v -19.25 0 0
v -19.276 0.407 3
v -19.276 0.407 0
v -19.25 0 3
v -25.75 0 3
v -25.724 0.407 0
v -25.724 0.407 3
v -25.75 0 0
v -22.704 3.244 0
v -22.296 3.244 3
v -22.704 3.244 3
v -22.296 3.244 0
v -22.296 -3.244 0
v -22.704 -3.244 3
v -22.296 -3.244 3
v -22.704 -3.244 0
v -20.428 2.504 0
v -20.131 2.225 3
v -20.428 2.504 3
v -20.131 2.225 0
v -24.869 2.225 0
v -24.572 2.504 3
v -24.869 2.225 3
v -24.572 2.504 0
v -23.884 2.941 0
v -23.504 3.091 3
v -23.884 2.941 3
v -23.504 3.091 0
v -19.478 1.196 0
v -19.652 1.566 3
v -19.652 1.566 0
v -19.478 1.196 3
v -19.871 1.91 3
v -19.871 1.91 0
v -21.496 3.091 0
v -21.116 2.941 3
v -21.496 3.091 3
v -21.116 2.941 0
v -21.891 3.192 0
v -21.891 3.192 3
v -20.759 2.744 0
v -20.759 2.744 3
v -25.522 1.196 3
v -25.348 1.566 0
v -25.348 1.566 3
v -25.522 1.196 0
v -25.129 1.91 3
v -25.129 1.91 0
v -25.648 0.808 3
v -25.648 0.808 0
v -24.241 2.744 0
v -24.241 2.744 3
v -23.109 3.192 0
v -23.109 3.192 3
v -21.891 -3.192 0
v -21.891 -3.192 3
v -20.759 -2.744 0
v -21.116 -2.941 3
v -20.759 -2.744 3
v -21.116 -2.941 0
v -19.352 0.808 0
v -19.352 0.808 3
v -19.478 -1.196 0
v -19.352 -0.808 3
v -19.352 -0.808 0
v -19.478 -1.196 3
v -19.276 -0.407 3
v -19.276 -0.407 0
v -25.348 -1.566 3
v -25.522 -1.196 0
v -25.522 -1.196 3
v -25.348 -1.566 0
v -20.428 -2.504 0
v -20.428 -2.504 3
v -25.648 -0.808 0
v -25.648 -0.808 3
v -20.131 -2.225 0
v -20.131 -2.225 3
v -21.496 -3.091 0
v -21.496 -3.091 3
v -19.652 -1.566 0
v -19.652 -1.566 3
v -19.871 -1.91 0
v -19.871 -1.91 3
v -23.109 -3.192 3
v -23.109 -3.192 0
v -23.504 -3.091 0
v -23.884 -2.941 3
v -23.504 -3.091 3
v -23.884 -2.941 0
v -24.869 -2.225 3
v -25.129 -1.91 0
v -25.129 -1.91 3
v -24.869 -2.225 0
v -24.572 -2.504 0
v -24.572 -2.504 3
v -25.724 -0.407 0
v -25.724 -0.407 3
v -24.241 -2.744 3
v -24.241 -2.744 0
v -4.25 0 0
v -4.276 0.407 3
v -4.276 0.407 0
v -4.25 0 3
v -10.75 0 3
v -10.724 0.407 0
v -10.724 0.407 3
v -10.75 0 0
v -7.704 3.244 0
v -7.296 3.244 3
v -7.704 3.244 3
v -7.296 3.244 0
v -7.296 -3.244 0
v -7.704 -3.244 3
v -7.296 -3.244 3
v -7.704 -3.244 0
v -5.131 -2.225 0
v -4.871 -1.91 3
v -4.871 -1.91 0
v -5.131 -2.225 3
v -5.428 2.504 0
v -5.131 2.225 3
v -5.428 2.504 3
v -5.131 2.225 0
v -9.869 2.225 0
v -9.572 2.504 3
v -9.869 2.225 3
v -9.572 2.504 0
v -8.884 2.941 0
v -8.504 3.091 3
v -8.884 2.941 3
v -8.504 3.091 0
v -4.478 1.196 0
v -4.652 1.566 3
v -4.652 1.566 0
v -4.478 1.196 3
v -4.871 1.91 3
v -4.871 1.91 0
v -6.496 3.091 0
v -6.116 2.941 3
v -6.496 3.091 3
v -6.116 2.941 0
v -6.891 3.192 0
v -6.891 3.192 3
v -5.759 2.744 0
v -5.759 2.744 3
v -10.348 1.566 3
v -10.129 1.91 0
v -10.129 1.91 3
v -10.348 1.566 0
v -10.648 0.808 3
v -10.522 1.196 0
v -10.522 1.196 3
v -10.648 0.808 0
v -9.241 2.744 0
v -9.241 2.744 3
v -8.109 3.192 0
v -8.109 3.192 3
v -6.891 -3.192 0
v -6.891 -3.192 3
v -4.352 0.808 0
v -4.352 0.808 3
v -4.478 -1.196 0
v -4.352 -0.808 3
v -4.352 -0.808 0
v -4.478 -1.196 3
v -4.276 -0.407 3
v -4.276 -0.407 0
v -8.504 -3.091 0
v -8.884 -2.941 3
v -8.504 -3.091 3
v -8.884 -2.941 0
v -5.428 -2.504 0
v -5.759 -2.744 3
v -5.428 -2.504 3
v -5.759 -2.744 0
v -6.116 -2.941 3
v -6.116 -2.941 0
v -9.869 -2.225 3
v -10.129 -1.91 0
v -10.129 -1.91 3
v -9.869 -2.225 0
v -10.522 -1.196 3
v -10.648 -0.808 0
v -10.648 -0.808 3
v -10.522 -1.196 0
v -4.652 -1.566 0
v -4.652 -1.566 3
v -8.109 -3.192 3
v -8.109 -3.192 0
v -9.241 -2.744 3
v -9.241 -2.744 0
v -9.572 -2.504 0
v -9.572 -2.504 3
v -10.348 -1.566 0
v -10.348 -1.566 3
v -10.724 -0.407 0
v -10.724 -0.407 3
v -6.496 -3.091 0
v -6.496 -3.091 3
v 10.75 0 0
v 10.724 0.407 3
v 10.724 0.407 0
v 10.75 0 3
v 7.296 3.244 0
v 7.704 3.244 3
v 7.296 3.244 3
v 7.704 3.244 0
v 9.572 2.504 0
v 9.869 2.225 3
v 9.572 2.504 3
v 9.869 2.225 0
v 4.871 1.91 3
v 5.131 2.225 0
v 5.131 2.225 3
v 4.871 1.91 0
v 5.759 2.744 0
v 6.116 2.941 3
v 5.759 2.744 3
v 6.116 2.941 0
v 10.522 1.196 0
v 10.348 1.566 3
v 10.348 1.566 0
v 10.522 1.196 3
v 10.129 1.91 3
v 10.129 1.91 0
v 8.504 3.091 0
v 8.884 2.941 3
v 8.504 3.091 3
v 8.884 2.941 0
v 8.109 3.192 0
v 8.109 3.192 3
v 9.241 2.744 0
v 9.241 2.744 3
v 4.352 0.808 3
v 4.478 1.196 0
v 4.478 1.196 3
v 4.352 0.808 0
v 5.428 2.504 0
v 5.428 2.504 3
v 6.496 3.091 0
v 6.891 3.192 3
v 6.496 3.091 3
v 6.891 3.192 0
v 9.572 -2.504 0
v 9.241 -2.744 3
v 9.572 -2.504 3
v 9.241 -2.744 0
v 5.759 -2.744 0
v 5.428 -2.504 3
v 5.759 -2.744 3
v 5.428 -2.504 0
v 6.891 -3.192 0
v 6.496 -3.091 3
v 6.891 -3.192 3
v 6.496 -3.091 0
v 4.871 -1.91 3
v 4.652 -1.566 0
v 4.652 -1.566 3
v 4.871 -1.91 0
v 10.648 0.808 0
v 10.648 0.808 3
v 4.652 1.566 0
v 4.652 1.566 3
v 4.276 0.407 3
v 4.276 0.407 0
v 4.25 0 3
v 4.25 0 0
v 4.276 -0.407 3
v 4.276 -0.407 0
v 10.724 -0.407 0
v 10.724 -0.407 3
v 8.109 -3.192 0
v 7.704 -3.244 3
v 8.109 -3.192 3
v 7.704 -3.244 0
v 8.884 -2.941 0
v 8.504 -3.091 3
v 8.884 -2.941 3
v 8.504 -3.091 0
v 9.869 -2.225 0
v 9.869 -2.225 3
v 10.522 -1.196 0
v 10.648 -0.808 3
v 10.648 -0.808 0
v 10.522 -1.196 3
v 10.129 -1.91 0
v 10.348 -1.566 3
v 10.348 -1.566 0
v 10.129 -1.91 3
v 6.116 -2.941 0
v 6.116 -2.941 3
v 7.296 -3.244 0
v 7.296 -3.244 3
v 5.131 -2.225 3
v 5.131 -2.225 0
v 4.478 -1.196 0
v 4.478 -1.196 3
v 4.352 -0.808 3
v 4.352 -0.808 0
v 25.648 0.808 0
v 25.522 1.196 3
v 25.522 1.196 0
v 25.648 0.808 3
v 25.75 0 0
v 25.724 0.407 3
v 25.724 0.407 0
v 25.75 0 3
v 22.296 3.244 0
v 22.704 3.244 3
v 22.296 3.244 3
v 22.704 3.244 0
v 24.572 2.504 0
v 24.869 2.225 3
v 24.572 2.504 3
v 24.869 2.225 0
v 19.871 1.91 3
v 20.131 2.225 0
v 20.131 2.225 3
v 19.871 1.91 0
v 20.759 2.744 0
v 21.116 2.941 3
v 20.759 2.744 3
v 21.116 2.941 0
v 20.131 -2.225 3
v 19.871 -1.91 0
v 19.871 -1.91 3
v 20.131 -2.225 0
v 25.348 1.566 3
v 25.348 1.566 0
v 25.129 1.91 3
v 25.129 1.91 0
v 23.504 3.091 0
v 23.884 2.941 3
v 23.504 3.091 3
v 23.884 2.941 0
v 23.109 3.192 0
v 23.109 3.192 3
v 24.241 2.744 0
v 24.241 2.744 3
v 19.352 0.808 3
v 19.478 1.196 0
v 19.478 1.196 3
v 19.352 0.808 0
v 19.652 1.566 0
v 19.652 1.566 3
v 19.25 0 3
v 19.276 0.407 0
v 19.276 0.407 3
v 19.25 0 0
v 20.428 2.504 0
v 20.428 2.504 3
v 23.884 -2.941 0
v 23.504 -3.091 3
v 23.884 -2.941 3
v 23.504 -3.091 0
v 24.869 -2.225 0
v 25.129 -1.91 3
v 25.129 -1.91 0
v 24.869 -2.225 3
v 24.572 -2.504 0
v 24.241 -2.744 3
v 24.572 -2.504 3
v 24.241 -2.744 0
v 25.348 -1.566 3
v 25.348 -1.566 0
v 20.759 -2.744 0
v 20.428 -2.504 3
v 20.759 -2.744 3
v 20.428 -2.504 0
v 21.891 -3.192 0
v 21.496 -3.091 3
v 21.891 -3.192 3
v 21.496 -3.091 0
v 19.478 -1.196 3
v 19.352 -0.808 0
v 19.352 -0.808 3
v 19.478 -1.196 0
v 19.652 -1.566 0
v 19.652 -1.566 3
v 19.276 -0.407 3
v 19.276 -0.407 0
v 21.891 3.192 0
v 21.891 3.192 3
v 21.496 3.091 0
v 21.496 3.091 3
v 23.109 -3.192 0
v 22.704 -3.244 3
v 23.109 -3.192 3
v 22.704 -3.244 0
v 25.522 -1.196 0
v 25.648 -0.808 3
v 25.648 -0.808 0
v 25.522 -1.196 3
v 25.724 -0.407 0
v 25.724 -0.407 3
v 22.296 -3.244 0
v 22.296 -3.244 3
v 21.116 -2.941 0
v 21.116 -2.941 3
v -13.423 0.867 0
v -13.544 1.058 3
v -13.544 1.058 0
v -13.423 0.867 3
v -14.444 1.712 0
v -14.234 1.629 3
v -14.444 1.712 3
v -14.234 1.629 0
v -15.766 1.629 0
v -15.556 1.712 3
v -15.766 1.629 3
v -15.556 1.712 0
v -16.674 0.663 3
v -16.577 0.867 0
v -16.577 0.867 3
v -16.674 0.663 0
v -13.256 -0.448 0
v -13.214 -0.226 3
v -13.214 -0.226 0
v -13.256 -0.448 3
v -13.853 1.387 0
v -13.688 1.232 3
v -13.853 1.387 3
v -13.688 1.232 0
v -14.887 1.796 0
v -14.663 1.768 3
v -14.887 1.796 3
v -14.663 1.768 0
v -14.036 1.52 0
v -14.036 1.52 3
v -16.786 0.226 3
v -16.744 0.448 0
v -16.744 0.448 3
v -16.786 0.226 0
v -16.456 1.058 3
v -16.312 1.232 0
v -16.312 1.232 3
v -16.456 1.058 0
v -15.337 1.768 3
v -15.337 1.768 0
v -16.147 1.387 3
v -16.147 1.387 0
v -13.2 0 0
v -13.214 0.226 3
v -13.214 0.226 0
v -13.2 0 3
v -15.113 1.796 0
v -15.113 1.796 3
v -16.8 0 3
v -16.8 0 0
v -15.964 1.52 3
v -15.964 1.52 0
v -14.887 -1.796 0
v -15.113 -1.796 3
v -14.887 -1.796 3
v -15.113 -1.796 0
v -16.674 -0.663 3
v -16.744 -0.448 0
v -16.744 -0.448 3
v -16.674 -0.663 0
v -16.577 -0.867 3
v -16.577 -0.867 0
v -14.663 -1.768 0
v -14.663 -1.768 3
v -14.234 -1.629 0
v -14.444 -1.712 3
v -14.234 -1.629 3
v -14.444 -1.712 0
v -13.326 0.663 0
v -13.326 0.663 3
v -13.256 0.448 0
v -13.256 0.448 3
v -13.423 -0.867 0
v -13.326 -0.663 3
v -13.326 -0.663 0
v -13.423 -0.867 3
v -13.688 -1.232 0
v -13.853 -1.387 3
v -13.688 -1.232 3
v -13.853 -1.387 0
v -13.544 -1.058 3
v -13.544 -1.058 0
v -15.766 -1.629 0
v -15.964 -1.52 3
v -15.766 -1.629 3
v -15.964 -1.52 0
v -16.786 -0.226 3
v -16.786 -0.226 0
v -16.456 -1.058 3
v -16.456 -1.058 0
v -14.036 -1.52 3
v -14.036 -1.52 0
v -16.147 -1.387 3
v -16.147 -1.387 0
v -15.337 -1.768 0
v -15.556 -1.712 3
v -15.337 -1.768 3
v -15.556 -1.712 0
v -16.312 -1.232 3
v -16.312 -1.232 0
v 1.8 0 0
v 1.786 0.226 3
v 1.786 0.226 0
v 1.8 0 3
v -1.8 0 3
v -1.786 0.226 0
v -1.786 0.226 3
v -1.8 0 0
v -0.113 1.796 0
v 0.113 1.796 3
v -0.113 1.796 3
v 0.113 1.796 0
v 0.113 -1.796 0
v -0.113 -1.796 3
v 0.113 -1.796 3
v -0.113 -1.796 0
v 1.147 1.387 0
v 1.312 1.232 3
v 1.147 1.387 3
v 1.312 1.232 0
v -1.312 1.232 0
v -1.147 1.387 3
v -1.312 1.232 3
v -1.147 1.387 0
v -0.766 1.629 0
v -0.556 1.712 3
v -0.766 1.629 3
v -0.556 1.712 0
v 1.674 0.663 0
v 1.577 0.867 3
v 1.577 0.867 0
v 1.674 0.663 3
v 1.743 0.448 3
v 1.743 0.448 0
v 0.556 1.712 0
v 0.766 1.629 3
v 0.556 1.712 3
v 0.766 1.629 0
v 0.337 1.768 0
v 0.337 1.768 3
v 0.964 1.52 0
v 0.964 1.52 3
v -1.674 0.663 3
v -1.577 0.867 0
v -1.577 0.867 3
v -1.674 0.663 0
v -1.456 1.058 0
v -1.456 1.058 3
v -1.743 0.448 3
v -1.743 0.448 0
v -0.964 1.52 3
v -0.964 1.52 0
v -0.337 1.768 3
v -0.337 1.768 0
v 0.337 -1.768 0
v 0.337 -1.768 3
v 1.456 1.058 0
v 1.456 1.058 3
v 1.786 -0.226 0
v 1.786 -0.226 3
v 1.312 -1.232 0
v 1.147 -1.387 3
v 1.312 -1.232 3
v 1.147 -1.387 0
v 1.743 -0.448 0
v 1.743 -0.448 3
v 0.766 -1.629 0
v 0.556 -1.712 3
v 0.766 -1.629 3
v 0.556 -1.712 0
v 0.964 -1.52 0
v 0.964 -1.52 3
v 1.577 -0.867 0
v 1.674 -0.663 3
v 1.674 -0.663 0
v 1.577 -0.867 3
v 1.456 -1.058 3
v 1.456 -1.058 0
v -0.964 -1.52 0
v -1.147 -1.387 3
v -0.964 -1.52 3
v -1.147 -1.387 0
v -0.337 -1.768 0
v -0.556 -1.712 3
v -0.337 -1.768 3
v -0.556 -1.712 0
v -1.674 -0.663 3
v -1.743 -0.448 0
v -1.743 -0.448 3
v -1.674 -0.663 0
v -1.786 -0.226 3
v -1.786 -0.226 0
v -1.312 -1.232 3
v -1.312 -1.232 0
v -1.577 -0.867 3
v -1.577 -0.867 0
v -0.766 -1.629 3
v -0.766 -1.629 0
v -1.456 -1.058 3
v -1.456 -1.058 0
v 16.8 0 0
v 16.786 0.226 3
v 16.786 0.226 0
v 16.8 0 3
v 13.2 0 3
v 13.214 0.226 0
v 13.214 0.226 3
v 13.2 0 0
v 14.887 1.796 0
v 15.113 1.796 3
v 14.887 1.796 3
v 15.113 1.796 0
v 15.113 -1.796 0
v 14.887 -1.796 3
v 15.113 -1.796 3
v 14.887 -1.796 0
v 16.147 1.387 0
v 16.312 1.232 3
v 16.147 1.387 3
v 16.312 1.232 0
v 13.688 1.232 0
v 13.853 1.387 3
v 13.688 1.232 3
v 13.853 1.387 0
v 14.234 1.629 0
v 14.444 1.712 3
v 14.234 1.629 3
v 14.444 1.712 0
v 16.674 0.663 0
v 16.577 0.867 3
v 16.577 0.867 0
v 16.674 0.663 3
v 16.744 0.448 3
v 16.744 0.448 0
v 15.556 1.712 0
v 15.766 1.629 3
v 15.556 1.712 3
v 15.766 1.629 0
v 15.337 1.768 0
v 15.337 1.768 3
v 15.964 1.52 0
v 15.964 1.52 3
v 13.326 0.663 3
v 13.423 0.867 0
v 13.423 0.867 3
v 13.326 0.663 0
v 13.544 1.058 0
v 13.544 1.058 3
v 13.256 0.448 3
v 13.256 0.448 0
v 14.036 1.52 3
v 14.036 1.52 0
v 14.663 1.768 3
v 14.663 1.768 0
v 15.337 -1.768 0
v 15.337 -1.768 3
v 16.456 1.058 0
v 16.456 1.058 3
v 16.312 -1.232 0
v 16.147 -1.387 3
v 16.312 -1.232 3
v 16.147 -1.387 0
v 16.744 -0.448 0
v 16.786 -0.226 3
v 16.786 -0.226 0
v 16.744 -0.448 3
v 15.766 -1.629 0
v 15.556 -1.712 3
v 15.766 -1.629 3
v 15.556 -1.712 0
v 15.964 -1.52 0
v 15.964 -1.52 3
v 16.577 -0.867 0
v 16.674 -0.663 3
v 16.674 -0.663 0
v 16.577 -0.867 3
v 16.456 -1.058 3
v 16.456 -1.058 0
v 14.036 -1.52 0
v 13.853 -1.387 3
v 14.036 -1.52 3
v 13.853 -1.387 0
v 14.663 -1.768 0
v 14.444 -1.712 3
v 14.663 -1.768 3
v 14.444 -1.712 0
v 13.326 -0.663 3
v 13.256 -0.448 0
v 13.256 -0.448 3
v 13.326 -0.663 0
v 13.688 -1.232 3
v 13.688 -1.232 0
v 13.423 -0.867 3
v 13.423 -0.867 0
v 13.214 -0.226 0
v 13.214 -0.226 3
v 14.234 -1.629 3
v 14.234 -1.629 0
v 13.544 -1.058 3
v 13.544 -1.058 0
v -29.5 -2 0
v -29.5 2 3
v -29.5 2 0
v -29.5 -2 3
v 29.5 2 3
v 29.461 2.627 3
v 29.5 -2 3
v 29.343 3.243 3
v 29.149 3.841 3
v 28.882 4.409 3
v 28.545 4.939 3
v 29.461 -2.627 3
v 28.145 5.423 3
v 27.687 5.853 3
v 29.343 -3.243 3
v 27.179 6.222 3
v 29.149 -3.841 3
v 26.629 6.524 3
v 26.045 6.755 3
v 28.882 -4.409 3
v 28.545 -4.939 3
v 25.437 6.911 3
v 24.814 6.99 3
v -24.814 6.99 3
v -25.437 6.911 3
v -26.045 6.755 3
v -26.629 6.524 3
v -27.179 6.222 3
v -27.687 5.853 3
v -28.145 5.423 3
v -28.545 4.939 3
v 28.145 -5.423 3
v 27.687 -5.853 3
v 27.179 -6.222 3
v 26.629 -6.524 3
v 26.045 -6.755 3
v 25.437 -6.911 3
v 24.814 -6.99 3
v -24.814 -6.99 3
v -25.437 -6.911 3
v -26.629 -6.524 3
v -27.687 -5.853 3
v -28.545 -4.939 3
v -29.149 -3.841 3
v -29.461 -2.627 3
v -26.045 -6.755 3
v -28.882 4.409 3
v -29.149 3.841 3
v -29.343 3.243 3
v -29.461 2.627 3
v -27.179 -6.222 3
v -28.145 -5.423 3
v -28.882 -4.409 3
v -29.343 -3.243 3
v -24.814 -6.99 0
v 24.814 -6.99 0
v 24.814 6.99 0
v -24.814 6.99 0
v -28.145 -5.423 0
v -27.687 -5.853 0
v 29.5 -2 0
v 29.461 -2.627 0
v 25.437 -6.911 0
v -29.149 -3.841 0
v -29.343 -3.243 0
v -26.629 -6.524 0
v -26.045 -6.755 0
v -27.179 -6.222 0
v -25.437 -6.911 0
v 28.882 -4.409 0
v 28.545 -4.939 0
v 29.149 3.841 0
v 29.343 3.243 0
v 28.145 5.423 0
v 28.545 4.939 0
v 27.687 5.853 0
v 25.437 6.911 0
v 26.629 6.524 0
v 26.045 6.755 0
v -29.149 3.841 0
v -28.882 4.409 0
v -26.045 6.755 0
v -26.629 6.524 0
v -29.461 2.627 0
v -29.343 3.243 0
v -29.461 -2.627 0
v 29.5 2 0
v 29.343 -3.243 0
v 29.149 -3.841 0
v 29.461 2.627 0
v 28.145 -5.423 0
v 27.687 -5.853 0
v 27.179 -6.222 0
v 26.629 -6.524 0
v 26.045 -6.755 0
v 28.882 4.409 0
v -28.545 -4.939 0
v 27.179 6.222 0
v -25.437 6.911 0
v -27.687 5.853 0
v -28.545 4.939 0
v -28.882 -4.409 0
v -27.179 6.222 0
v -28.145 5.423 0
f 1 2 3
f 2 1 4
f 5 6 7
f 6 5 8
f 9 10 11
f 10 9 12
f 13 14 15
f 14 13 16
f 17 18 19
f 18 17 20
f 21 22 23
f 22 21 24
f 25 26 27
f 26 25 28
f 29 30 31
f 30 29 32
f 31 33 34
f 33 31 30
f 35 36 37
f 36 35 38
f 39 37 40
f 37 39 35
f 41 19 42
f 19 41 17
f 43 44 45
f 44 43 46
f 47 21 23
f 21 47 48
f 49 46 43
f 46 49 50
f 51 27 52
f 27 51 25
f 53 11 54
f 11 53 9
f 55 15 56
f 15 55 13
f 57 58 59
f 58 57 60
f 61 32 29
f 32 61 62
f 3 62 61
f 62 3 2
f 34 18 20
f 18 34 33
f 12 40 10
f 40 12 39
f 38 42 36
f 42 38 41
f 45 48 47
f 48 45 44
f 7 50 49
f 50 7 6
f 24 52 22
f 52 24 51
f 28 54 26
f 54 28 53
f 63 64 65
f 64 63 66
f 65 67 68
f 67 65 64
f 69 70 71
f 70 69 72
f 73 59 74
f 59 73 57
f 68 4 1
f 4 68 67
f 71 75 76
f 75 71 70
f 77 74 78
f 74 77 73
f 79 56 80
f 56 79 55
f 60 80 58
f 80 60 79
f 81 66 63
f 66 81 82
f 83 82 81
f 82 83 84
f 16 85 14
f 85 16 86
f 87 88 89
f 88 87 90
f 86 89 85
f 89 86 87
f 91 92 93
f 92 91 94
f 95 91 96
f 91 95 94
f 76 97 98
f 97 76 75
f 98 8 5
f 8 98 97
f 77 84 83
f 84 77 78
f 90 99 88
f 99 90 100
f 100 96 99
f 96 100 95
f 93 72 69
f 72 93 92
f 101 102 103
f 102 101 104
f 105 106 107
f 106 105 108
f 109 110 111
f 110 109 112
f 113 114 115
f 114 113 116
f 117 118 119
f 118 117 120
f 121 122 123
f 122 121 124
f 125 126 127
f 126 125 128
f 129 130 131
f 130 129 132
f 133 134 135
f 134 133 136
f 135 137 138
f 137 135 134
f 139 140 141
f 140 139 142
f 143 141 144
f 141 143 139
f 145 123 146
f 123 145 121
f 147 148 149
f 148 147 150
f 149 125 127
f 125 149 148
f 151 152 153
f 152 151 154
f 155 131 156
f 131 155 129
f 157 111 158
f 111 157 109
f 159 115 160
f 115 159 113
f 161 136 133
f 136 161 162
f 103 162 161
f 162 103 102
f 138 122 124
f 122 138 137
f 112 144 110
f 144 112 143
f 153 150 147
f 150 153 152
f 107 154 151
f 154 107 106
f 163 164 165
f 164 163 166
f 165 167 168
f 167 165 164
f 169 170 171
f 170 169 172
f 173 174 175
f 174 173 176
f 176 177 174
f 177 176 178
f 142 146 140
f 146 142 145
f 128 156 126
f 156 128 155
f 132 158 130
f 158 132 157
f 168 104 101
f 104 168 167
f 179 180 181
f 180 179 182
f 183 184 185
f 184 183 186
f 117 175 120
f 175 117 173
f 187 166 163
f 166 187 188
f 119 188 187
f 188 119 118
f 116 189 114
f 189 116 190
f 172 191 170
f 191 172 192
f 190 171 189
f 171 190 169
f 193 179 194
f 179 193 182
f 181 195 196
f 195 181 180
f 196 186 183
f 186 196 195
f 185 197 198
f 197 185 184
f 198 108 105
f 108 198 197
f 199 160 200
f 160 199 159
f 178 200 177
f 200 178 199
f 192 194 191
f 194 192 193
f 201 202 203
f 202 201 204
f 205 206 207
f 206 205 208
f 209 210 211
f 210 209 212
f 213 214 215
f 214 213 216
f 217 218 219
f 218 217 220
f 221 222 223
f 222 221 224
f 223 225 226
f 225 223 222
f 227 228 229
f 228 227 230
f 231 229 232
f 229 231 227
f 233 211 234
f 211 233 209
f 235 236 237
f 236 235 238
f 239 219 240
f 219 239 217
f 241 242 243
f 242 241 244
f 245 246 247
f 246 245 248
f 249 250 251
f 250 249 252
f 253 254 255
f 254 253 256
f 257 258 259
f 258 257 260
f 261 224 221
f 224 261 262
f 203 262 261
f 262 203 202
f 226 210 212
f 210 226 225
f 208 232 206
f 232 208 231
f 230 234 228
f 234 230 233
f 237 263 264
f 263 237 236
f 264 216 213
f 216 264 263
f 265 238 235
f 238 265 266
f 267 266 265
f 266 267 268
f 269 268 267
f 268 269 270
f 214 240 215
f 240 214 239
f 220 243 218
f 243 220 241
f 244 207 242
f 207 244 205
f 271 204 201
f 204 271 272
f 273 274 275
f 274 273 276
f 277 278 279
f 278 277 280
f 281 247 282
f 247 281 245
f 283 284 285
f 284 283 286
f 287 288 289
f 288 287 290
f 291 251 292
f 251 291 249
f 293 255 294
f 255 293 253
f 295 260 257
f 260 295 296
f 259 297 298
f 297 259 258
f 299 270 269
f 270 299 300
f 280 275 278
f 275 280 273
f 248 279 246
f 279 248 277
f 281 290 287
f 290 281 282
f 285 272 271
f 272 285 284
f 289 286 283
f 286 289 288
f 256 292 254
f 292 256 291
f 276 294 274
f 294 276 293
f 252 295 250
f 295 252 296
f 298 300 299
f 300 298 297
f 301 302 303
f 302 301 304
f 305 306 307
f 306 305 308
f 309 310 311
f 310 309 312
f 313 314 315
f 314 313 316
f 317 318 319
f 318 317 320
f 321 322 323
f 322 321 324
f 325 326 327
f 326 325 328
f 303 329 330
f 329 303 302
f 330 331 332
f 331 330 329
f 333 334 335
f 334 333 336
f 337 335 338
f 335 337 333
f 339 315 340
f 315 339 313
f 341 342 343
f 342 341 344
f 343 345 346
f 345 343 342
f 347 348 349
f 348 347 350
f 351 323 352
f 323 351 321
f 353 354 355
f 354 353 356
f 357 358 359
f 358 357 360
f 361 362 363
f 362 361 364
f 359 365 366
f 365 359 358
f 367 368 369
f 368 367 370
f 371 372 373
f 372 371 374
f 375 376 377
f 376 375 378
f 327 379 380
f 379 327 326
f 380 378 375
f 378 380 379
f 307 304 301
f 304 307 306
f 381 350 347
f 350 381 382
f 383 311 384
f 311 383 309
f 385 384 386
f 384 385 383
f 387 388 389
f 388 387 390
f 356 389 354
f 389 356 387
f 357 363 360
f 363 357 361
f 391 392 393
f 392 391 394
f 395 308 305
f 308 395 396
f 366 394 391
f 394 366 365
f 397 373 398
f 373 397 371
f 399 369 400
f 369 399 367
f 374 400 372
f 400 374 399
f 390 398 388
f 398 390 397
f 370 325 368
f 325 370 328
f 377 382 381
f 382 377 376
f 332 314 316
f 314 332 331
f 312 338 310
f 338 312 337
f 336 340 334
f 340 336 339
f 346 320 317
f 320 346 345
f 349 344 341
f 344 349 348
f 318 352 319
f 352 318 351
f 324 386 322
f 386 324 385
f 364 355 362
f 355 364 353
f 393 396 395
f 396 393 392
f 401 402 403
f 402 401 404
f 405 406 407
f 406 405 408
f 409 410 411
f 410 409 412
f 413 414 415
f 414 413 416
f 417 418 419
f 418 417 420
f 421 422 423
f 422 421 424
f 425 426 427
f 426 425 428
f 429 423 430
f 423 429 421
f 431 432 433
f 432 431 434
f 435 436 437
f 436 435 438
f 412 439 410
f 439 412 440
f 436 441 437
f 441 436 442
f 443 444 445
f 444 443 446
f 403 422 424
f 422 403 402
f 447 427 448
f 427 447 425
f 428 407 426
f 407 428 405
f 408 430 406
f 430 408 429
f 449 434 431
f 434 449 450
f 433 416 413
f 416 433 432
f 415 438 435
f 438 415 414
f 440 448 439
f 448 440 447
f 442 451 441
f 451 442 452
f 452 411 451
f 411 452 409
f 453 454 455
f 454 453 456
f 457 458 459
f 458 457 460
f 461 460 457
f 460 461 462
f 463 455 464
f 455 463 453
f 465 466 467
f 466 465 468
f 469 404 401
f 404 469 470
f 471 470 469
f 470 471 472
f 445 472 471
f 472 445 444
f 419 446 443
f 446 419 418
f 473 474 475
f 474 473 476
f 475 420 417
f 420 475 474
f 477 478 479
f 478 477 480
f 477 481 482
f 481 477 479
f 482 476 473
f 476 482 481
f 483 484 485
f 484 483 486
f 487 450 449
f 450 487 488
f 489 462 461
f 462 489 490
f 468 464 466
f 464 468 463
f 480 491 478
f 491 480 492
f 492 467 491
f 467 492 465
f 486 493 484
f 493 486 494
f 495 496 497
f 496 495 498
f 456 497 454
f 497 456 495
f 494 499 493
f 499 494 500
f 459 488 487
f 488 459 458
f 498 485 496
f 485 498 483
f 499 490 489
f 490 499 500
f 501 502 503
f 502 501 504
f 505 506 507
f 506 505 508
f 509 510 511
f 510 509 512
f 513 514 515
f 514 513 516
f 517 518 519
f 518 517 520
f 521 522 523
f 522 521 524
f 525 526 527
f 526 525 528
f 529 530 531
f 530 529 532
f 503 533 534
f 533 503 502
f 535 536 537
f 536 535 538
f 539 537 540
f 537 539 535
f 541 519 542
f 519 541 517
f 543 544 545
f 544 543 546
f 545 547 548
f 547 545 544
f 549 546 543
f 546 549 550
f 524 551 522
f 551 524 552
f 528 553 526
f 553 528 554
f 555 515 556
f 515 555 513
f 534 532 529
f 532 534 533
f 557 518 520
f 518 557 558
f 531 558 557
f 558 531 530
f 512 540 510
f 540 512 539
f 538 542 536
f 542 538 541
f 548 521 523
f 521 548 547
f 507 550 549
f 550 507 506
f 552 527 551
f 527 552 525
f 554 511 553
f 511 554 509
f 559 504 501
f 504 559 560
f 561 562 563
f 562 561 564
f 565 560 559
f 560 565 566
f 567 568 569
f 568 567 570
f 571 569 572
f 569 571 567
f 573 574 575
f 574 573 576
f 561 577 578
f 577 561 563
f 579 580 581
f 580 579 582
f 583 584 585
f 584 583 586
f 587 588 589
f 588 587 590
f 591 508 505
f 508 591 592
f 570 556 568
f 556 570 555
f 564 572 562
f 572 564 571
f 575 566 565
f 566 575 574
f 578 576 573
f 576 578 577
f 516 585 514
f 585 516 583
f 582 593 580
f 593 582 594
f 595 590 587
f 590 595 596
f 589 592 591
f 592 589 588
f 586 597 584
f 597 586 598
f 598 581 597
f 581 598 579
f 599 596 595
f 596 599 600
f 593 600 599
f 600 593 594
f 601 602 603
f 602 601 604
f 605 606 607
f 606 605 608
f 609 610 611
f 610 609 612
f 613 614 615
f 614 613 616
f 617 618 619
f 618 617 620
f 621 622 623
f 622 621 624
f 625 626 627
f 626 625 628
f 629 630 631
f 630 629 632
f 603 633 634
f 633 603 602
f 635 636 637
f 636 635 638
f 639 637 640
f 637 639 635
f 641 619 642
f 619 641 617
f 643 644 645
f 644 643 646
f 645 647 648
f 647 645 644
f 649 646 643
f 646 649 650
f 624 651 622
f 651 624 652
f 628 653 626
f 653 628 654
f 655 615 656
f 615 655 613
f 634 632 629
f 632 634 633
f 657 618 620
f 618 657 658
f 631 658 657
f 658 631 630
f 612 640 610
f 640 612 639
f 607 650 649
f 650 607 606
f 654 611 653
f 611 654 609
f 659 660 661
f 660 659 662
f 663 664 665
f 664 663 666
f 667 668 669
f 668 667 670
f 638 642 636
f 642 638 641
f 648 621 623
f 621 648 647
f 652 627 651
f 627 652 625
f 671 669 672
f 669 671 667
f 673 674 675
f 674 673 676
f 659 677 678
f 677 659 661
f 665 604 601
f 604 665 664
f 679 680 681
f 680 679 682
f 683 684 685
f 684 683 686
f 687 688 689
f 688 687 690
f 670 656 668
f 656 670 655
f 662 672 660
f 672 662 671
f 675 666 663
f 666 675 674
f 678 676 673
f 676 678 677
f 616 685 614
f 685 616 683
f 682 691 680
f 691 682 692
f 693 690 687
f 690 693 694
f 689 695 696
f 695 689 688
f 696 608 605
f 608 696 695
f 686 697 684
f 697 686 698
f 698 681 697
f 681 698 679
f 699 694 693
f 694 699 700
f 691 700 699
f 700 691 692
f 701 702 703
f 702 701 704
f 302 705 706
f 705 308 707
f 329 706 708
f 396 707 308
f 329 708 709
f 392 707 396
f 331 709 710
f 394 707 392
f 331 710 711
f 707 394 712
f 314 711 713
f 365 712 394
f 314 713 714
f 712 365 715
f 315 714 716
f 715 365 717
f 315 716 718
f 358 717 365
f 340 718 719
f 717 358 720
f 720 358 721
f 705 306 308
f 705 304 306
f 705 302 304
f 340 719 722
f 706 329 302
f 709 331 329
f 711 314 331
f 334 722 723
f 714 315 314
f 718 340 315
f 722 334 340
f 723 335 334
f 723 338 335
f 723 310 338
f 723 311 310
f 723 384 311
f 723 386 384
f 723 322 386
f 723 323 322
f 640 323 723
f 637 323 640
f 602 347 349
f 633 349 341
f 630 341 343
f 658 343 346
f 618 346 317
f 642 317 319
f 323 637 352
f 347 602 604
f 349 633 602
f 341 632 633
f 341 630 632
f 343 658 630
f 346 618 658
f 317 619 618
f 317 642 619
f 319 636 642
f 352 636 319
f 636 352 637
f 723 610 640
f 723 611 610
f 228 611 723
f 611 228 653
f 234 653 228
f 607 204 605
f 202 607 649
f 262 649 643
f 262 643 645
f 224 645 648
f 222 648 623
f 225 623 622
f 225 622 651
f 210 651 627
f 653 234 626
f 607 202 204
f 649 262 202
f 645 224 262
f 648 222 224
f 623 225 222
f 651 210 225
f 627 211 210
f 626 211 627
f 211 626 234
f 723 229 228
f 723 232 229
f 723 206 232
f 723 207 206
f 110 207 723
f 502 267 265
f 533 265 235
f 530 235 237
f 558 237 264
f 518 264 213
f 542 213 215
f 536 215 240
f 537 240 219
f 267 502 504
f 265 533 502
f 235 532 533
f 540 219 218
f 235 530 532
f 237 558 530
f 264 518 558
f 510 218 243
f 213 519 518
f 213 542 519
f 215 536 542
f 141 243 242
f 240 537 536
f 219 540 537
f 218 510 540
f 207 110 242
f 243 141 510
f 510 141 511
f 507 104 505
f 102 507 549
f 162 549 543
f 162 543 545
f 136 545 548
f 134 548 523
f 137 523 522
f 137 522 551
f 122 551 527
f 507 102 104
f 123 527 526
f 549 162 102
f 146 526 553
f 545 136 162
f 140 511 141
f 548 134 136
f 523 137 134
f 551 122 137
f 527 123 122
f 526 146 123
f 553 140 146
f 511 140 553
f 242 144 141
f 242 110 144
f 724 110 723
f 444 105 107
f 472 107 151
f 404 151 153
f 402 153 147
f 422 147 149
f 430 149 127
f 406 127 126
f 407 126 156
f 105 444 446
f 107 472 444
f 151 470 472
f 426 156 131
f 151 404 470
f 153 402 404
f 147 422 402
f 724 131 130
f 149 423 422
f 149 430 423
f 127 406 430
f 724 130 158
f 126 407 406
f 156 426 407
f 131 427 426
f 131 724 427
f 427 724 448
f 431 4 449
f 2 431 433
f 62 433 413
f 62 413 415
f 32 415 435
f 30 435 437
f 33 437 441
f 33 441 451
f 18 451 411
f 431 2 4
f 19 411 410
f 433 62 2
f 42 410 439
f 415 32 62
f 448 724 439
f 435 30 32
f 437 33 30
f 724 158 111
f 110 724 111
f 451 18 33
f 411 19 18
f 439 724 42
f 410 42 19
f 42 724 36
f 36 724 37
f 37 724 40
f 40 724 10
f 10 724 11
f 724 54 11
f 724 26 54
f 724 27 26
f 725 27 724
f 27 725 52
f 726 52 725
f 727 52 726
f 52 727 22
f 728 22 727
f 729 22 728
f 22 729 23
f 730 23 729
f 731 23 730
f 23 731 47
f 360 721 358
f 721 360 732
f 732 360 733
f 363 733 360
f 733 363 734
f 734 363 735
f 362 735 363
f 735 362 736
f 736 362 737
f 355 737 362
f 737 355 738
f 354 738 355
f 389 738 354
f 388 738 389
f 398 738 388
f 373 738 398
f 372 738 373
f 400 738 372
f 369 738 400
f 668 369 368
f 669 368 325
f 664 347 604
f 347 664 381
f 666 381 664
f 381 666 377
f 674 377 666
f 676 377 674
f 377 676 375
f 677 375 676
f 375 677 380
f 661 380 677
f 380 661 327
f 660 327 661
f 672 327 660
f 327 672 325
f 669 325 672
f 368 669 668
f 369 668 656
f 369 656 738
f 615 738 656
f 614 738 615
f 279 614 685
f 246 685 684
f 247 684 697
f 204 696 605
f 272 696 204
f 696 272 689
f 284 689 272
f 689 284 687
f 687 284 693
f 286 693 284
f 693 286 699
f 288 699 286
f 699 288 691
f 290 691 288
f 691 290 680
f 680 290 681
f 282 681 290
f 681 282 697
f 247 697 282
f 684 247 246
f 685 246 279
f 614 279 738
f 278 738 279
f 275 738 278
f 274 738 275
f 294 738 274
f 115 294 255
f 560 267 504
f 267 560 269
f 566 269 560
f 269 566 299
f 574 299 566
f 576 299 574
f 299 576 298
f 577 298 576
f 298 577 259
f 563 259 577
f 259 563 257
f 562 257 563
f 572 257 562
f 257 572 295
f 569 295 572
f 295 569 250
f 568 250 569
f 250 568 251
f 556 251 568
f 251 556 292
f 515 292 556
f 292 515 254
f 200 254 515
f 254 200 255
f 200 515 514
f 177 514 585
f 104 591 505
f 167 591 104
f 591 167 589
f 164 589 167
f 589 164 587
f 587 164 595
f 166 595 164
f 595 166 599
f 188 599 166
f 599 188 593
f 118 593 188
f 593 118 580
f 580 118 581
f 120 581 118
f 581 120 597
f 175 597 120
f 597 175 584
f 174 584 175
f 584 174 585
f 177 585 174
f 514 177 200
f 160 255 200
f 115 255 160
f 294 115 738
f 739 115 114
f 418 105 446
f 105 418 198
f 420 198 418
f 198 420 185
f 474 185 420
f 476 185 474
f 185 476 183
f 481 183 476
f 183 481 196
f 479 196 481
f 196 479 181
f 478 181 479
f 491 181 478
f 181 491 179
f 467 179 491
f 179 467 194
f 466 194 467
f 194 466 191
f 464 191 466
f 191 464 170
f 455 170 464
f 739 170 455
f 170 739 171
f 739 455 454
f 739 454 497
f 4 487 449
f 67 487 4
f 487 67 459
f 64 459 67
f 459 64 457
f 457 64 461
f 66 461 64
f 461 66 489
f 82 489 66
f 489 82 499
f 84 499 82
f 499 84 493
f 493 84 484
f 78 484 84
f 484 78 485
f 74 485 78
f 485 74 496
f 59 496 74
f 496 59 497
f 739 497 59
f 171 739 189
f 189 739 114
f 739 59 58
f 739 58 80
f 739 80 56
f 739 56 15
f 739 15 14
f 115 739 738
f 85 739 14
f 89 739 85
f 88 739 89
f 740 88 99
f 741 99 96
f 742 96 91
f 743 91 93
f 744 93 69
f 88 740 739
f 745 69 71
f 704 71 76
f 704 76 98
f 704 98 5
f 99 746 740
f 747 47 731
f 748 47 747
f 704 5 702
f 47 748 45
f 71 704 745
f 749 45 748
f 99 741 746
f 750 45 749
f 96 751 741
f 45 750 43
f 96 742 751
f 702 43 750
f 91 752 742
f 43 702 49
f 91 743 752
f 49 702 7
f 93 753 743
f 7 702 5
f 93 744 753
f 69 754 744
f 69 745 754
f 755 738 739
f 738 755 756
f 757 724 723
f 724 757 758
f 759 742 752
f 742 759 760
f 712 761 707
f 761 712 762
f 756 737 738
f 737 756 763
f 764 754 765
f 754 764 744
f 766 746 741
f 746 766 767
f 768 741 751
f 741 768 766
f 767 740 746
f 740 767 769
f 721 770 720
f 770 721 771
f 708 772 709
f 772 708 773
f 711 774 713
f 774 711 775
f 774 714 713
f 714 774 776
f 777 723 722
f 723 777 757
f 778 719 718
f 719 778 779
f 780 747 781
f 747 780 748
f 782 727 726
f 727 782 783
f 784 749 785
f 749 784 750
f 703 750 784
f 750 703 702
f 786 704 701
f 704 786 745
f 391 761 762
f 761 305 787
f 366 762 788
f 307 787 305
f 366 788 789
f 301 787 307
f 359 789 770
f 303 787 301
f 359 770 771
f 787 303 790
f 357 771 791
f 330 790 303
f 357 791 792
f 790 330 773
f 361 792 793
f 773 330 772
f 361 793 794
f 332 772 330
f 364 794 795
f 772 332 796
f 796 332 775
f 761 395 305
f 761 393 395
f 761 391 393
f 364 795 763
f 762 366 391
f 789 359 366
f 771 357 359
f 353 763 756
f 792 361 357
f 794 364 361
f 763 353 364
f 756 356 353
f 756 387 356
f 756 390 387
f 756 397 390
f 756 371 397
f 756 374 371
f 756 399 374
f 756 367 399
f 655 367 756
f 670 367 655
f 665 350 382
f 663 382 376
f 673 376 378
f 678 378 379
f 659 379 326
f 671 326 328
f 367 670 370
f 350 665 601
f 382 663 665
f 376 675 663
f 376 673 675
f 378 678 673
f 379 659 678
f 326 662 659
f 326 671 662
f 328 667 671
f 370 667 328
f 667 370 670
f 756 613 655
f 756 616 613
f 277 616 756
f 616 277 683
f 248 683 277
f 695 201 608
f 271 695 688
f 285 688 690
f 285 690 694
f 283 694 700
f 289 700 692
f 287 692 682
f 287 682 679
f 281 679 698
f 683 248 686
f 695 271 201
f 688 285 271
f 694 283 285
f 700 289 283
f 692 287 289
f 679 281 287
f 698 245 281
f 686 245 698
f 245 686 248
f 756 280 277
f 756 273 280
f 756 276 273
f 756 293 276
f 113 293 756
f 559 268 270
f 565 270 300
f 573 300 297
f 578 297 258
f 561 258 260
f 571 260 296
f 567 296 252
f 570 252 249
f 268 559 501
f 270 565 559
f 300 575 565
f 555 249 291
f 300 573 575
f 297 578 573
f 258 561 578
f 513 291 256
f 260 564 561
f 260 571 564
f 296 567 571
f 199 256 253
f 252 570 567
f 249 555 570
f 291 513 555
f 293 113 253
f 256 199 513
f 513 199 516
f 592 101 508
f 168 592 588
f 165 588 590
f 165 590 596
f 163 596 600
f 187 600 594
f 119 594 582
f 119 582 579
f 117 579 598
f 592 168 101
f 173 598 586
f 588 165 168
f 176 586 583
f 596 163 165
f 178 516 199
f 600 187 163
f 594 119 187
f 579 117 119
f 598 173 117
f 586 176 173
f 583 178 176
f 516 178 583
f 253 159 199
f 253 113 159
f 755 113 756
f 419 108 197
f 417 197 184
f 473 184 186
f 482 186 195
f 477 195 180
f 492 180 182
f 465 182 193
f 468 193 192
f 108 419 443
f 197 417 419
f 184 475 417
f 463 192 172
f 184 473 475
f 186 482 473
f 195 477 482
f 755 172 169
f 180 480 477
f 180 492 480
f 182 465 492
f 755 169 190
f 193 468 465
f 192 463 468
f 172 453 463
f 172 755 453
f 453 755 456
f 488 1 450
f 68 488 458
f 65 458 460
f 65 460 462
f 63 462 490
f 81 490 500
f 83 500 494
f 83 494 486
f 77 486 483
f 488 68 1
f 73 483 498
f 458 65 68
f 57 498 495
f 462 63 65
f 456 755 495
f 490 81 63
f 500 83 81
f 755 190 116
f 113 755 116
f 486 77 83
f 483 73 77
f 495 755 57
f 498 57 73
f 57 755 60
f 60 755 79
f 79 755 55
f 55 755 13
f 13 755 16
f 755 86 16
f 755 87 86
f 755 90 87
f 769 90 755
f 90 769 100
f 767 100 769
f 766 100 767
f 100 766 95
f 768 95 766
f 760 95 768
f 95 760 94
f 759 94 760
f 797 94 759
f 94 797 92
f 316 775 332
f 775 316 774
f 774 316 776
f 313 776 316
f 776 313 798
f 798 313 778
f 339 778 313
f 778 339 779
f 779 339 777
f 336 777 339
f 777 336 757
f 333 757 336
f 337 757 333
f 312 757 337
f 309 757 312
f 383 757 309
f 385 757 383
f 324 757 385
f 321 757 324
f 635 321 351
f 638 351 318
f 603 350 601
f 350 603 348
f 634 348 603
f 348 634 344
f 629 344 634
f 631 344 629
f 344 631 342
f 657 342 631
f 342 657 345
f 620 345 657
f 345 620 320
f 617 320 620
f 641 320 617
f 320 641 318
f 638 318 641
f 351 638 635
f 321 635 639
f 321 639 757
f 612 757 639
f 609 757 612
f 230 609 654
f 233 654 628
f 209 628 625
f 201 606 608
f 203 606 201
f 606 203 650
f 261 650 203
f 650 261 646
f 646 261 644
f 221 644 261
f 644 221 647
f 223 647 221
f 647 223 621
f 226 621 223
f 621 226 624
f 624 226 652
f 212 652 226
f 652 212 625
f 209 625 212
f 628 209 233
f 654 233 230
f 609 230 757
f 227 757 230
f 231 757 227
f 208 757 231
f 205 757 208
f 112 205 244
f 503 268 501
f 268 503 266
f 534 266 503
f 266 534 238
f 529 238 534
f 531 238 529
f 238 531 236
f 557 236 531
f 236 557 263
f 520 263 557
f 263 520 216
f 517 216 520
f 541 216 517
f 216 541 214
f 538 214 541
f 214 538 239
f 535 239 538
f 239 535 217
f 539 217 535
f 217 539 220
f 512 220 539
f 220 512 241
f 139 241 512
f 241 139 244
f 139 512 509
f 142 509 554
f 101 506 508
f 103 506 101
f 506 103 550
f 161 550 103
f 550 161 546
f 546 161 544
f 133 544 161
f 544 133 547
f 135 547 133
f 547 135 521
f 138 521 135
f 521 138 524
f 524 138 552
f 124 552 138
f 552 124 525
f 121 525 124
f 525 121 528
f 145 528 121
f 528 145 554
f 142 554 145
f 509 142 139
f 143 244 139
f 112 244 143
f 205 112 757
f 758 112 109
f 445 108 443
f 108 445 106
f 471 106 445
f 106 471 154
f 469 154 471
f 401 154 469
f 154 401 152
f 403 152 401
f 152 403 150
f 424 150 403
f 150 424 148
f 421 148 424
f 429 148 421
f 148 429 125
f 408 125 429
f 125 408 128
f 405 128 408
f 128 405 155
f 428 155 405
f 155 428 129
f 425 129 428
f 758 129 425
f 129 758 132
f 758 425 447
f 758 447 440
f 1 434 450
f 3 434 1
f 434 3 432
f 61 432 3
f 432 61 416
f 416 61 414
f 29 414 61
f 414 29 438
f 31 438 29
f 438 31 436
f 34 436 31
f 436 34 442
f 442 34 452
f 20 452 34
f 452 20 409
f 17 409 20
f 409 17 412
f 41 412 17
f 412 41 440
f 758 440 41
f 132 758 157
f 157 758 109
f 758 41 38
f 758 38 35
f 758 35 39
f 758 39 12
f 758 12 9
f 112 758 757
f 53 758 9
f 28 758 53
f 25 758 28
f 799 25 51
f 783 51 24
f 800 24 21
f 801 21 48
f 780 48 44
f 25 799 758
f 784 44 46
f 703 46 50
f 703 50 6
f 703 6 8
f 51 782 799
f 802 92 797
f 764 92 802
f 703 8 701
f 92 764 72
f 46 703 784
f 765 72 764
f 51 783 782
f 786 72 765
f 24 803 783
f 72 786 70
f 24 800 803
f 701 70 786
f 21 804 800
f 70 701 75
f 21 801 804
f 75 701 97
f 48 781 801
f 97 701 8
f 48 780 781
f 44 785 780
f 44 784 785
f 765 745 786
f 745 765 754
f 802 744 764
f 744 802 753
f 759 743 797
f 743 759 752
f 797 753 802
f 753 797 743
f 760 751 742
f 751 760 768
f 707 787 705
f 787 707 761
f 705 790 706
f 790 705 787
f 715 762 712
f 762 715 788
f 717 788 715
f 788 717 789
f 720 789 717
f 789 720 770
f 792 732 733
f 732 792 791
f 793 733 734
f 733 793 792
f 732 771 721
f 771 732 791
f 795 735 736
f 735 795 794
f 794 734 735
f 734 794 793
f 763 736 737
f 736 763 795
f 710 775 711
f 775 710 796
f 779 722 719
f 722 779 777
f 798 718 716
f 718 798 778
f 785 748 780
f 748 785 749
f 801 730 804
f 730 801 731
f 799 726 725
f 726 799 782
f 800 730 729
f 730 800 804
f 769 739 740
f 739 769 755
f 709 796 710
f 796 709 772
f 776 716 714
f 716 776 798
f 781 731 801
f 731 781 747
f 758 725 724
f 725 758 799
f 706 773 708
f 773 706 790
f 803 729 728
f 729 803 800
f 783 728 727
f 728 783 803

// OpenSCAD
$fn = 50;


difference() {
	union() {
		hull() {
			translate(v = [-24.5000000000, 2.0000000000, 0]) {
				cylinder(h = 3, r = 5);
			}
			translate(v = [24.5000000000, 2.0000000000, 0]) {
				cylinder(h = 3, r = 5);
			}
			translate(v = [-24.5000000000, -2.0000000000, 0]) {
				cylinder(h = 3, r = 5);
			}
			translate(v = [24.5000000000, -2.0000000000, 0]) {
				cylinder(h = 3, r = 5);
			}
		}
	}
	union() {
		translate(v = [-22.5000000000, 0.0000000000, -100.0000000000]) {
			cylinder(h = 200, r = 3.2500000000);
		}
		translate(v = [-7.5000000000, 0.0000000000, -100.0000000000]) {
			cylinder(h = 200, r = 3.2500000000);
		}
		translate(v = [7.5000000000, 0.0000000000, -100.0000000000]) {
			cylinder(h = 200, r = 3.2500000000);
		}
		translate(v = [22.5000000000, 0.0000000000, -100.0000000000]) {
			cylinder(h = 200, r = 3.2500000000);
		}
		translate(v = [-22.5000000000, 0.0000000000, 0]) {
			cylinder(h = 3, r = 1.8000000000);
		}
		translate(v = [-15.0000000000, 0.0000000000, 0]) {
			cylinder(h = 3, r = 1.8000000000);
		}
		translate(v = [-7.5000000000, 0.0000000000, 0]) {
			cylinder(h = 3, r = 1.8000000000);
		}
		cylinder(h = 3, r = 1.8000000000);
		translate(v = [7.5000000000, 0.0000000000, 0]) {
			cylinder(h = 3, r = 1.8000000000);
		}
		translate(v = [15.0000000000, 0.0000000000, 0]) {
			cylinder(h = 3, r = 1.8000000000);
		}
		translate(v = [22.5000000000, 0.0000000000, 0]) {
			cylinder(h = 3, r = 1.8000000000);
		}
		translate(v = [-22.5000000000, 0.0000000000, 0]) {
			cylinder(h = 3, r = 1.8000000000);
		}
		translate(v = [-15.0000000000, 0.0000000000, 0]) {
			cylinder(h = 3, r = 1.8000000000);
		}
		translate(v = [-7.5000000000, 0.0000000000, 0]) {
			cylinder(h = 3, r = 1.8000000000);
		}
		cylinder(h = 3, r = 1.8000000000);
		translate(v = [7.5000000000, 0.0000000000, 0]) {
			cylinder(h = 3, r = 1.8000000000);
		}
		translate(v = [15.0000000000, 0.0000000000, 0]) {
			cylinder(h = 3, r = 1.8000000000);
		}
		translate(v = [22.5000000000, 0.0000000000, 0]) {
			cylinder(h = 3, r = 1.8000000000);
		}
		translate(v = [-22.5000000000, 0.0000000000, 0]) {
			cylinder(h = 3, r = 1.8000000000);
		}
		translate(v = [-15.0000000000, 0.0000000000, 0]) {
			cylinder(h = 3, r = 1.8000000000);
		}
		translate(v = [-7.5000000000, 0.0000000000, 0]) {
			cylinder(h = 3, r = 1.8000000000);
		}
		cylinder(h = 3, r = 1.8000000000);
		translate(v = [7.5000000000, 0.0000000000, 0]) {
			cylinder(h = 3, r = 1.8000000000);
		}
		translate(v = [15.0000000000, 0.0000000000, 0]) {
			cylinder(h = 3, r = 1.8000000000);
		}
		translate(v = [22.5000000000, 0.0000000000, 0]) {
			cylinder(h = 3, r = 1.8000000000);
		}
	}
}
